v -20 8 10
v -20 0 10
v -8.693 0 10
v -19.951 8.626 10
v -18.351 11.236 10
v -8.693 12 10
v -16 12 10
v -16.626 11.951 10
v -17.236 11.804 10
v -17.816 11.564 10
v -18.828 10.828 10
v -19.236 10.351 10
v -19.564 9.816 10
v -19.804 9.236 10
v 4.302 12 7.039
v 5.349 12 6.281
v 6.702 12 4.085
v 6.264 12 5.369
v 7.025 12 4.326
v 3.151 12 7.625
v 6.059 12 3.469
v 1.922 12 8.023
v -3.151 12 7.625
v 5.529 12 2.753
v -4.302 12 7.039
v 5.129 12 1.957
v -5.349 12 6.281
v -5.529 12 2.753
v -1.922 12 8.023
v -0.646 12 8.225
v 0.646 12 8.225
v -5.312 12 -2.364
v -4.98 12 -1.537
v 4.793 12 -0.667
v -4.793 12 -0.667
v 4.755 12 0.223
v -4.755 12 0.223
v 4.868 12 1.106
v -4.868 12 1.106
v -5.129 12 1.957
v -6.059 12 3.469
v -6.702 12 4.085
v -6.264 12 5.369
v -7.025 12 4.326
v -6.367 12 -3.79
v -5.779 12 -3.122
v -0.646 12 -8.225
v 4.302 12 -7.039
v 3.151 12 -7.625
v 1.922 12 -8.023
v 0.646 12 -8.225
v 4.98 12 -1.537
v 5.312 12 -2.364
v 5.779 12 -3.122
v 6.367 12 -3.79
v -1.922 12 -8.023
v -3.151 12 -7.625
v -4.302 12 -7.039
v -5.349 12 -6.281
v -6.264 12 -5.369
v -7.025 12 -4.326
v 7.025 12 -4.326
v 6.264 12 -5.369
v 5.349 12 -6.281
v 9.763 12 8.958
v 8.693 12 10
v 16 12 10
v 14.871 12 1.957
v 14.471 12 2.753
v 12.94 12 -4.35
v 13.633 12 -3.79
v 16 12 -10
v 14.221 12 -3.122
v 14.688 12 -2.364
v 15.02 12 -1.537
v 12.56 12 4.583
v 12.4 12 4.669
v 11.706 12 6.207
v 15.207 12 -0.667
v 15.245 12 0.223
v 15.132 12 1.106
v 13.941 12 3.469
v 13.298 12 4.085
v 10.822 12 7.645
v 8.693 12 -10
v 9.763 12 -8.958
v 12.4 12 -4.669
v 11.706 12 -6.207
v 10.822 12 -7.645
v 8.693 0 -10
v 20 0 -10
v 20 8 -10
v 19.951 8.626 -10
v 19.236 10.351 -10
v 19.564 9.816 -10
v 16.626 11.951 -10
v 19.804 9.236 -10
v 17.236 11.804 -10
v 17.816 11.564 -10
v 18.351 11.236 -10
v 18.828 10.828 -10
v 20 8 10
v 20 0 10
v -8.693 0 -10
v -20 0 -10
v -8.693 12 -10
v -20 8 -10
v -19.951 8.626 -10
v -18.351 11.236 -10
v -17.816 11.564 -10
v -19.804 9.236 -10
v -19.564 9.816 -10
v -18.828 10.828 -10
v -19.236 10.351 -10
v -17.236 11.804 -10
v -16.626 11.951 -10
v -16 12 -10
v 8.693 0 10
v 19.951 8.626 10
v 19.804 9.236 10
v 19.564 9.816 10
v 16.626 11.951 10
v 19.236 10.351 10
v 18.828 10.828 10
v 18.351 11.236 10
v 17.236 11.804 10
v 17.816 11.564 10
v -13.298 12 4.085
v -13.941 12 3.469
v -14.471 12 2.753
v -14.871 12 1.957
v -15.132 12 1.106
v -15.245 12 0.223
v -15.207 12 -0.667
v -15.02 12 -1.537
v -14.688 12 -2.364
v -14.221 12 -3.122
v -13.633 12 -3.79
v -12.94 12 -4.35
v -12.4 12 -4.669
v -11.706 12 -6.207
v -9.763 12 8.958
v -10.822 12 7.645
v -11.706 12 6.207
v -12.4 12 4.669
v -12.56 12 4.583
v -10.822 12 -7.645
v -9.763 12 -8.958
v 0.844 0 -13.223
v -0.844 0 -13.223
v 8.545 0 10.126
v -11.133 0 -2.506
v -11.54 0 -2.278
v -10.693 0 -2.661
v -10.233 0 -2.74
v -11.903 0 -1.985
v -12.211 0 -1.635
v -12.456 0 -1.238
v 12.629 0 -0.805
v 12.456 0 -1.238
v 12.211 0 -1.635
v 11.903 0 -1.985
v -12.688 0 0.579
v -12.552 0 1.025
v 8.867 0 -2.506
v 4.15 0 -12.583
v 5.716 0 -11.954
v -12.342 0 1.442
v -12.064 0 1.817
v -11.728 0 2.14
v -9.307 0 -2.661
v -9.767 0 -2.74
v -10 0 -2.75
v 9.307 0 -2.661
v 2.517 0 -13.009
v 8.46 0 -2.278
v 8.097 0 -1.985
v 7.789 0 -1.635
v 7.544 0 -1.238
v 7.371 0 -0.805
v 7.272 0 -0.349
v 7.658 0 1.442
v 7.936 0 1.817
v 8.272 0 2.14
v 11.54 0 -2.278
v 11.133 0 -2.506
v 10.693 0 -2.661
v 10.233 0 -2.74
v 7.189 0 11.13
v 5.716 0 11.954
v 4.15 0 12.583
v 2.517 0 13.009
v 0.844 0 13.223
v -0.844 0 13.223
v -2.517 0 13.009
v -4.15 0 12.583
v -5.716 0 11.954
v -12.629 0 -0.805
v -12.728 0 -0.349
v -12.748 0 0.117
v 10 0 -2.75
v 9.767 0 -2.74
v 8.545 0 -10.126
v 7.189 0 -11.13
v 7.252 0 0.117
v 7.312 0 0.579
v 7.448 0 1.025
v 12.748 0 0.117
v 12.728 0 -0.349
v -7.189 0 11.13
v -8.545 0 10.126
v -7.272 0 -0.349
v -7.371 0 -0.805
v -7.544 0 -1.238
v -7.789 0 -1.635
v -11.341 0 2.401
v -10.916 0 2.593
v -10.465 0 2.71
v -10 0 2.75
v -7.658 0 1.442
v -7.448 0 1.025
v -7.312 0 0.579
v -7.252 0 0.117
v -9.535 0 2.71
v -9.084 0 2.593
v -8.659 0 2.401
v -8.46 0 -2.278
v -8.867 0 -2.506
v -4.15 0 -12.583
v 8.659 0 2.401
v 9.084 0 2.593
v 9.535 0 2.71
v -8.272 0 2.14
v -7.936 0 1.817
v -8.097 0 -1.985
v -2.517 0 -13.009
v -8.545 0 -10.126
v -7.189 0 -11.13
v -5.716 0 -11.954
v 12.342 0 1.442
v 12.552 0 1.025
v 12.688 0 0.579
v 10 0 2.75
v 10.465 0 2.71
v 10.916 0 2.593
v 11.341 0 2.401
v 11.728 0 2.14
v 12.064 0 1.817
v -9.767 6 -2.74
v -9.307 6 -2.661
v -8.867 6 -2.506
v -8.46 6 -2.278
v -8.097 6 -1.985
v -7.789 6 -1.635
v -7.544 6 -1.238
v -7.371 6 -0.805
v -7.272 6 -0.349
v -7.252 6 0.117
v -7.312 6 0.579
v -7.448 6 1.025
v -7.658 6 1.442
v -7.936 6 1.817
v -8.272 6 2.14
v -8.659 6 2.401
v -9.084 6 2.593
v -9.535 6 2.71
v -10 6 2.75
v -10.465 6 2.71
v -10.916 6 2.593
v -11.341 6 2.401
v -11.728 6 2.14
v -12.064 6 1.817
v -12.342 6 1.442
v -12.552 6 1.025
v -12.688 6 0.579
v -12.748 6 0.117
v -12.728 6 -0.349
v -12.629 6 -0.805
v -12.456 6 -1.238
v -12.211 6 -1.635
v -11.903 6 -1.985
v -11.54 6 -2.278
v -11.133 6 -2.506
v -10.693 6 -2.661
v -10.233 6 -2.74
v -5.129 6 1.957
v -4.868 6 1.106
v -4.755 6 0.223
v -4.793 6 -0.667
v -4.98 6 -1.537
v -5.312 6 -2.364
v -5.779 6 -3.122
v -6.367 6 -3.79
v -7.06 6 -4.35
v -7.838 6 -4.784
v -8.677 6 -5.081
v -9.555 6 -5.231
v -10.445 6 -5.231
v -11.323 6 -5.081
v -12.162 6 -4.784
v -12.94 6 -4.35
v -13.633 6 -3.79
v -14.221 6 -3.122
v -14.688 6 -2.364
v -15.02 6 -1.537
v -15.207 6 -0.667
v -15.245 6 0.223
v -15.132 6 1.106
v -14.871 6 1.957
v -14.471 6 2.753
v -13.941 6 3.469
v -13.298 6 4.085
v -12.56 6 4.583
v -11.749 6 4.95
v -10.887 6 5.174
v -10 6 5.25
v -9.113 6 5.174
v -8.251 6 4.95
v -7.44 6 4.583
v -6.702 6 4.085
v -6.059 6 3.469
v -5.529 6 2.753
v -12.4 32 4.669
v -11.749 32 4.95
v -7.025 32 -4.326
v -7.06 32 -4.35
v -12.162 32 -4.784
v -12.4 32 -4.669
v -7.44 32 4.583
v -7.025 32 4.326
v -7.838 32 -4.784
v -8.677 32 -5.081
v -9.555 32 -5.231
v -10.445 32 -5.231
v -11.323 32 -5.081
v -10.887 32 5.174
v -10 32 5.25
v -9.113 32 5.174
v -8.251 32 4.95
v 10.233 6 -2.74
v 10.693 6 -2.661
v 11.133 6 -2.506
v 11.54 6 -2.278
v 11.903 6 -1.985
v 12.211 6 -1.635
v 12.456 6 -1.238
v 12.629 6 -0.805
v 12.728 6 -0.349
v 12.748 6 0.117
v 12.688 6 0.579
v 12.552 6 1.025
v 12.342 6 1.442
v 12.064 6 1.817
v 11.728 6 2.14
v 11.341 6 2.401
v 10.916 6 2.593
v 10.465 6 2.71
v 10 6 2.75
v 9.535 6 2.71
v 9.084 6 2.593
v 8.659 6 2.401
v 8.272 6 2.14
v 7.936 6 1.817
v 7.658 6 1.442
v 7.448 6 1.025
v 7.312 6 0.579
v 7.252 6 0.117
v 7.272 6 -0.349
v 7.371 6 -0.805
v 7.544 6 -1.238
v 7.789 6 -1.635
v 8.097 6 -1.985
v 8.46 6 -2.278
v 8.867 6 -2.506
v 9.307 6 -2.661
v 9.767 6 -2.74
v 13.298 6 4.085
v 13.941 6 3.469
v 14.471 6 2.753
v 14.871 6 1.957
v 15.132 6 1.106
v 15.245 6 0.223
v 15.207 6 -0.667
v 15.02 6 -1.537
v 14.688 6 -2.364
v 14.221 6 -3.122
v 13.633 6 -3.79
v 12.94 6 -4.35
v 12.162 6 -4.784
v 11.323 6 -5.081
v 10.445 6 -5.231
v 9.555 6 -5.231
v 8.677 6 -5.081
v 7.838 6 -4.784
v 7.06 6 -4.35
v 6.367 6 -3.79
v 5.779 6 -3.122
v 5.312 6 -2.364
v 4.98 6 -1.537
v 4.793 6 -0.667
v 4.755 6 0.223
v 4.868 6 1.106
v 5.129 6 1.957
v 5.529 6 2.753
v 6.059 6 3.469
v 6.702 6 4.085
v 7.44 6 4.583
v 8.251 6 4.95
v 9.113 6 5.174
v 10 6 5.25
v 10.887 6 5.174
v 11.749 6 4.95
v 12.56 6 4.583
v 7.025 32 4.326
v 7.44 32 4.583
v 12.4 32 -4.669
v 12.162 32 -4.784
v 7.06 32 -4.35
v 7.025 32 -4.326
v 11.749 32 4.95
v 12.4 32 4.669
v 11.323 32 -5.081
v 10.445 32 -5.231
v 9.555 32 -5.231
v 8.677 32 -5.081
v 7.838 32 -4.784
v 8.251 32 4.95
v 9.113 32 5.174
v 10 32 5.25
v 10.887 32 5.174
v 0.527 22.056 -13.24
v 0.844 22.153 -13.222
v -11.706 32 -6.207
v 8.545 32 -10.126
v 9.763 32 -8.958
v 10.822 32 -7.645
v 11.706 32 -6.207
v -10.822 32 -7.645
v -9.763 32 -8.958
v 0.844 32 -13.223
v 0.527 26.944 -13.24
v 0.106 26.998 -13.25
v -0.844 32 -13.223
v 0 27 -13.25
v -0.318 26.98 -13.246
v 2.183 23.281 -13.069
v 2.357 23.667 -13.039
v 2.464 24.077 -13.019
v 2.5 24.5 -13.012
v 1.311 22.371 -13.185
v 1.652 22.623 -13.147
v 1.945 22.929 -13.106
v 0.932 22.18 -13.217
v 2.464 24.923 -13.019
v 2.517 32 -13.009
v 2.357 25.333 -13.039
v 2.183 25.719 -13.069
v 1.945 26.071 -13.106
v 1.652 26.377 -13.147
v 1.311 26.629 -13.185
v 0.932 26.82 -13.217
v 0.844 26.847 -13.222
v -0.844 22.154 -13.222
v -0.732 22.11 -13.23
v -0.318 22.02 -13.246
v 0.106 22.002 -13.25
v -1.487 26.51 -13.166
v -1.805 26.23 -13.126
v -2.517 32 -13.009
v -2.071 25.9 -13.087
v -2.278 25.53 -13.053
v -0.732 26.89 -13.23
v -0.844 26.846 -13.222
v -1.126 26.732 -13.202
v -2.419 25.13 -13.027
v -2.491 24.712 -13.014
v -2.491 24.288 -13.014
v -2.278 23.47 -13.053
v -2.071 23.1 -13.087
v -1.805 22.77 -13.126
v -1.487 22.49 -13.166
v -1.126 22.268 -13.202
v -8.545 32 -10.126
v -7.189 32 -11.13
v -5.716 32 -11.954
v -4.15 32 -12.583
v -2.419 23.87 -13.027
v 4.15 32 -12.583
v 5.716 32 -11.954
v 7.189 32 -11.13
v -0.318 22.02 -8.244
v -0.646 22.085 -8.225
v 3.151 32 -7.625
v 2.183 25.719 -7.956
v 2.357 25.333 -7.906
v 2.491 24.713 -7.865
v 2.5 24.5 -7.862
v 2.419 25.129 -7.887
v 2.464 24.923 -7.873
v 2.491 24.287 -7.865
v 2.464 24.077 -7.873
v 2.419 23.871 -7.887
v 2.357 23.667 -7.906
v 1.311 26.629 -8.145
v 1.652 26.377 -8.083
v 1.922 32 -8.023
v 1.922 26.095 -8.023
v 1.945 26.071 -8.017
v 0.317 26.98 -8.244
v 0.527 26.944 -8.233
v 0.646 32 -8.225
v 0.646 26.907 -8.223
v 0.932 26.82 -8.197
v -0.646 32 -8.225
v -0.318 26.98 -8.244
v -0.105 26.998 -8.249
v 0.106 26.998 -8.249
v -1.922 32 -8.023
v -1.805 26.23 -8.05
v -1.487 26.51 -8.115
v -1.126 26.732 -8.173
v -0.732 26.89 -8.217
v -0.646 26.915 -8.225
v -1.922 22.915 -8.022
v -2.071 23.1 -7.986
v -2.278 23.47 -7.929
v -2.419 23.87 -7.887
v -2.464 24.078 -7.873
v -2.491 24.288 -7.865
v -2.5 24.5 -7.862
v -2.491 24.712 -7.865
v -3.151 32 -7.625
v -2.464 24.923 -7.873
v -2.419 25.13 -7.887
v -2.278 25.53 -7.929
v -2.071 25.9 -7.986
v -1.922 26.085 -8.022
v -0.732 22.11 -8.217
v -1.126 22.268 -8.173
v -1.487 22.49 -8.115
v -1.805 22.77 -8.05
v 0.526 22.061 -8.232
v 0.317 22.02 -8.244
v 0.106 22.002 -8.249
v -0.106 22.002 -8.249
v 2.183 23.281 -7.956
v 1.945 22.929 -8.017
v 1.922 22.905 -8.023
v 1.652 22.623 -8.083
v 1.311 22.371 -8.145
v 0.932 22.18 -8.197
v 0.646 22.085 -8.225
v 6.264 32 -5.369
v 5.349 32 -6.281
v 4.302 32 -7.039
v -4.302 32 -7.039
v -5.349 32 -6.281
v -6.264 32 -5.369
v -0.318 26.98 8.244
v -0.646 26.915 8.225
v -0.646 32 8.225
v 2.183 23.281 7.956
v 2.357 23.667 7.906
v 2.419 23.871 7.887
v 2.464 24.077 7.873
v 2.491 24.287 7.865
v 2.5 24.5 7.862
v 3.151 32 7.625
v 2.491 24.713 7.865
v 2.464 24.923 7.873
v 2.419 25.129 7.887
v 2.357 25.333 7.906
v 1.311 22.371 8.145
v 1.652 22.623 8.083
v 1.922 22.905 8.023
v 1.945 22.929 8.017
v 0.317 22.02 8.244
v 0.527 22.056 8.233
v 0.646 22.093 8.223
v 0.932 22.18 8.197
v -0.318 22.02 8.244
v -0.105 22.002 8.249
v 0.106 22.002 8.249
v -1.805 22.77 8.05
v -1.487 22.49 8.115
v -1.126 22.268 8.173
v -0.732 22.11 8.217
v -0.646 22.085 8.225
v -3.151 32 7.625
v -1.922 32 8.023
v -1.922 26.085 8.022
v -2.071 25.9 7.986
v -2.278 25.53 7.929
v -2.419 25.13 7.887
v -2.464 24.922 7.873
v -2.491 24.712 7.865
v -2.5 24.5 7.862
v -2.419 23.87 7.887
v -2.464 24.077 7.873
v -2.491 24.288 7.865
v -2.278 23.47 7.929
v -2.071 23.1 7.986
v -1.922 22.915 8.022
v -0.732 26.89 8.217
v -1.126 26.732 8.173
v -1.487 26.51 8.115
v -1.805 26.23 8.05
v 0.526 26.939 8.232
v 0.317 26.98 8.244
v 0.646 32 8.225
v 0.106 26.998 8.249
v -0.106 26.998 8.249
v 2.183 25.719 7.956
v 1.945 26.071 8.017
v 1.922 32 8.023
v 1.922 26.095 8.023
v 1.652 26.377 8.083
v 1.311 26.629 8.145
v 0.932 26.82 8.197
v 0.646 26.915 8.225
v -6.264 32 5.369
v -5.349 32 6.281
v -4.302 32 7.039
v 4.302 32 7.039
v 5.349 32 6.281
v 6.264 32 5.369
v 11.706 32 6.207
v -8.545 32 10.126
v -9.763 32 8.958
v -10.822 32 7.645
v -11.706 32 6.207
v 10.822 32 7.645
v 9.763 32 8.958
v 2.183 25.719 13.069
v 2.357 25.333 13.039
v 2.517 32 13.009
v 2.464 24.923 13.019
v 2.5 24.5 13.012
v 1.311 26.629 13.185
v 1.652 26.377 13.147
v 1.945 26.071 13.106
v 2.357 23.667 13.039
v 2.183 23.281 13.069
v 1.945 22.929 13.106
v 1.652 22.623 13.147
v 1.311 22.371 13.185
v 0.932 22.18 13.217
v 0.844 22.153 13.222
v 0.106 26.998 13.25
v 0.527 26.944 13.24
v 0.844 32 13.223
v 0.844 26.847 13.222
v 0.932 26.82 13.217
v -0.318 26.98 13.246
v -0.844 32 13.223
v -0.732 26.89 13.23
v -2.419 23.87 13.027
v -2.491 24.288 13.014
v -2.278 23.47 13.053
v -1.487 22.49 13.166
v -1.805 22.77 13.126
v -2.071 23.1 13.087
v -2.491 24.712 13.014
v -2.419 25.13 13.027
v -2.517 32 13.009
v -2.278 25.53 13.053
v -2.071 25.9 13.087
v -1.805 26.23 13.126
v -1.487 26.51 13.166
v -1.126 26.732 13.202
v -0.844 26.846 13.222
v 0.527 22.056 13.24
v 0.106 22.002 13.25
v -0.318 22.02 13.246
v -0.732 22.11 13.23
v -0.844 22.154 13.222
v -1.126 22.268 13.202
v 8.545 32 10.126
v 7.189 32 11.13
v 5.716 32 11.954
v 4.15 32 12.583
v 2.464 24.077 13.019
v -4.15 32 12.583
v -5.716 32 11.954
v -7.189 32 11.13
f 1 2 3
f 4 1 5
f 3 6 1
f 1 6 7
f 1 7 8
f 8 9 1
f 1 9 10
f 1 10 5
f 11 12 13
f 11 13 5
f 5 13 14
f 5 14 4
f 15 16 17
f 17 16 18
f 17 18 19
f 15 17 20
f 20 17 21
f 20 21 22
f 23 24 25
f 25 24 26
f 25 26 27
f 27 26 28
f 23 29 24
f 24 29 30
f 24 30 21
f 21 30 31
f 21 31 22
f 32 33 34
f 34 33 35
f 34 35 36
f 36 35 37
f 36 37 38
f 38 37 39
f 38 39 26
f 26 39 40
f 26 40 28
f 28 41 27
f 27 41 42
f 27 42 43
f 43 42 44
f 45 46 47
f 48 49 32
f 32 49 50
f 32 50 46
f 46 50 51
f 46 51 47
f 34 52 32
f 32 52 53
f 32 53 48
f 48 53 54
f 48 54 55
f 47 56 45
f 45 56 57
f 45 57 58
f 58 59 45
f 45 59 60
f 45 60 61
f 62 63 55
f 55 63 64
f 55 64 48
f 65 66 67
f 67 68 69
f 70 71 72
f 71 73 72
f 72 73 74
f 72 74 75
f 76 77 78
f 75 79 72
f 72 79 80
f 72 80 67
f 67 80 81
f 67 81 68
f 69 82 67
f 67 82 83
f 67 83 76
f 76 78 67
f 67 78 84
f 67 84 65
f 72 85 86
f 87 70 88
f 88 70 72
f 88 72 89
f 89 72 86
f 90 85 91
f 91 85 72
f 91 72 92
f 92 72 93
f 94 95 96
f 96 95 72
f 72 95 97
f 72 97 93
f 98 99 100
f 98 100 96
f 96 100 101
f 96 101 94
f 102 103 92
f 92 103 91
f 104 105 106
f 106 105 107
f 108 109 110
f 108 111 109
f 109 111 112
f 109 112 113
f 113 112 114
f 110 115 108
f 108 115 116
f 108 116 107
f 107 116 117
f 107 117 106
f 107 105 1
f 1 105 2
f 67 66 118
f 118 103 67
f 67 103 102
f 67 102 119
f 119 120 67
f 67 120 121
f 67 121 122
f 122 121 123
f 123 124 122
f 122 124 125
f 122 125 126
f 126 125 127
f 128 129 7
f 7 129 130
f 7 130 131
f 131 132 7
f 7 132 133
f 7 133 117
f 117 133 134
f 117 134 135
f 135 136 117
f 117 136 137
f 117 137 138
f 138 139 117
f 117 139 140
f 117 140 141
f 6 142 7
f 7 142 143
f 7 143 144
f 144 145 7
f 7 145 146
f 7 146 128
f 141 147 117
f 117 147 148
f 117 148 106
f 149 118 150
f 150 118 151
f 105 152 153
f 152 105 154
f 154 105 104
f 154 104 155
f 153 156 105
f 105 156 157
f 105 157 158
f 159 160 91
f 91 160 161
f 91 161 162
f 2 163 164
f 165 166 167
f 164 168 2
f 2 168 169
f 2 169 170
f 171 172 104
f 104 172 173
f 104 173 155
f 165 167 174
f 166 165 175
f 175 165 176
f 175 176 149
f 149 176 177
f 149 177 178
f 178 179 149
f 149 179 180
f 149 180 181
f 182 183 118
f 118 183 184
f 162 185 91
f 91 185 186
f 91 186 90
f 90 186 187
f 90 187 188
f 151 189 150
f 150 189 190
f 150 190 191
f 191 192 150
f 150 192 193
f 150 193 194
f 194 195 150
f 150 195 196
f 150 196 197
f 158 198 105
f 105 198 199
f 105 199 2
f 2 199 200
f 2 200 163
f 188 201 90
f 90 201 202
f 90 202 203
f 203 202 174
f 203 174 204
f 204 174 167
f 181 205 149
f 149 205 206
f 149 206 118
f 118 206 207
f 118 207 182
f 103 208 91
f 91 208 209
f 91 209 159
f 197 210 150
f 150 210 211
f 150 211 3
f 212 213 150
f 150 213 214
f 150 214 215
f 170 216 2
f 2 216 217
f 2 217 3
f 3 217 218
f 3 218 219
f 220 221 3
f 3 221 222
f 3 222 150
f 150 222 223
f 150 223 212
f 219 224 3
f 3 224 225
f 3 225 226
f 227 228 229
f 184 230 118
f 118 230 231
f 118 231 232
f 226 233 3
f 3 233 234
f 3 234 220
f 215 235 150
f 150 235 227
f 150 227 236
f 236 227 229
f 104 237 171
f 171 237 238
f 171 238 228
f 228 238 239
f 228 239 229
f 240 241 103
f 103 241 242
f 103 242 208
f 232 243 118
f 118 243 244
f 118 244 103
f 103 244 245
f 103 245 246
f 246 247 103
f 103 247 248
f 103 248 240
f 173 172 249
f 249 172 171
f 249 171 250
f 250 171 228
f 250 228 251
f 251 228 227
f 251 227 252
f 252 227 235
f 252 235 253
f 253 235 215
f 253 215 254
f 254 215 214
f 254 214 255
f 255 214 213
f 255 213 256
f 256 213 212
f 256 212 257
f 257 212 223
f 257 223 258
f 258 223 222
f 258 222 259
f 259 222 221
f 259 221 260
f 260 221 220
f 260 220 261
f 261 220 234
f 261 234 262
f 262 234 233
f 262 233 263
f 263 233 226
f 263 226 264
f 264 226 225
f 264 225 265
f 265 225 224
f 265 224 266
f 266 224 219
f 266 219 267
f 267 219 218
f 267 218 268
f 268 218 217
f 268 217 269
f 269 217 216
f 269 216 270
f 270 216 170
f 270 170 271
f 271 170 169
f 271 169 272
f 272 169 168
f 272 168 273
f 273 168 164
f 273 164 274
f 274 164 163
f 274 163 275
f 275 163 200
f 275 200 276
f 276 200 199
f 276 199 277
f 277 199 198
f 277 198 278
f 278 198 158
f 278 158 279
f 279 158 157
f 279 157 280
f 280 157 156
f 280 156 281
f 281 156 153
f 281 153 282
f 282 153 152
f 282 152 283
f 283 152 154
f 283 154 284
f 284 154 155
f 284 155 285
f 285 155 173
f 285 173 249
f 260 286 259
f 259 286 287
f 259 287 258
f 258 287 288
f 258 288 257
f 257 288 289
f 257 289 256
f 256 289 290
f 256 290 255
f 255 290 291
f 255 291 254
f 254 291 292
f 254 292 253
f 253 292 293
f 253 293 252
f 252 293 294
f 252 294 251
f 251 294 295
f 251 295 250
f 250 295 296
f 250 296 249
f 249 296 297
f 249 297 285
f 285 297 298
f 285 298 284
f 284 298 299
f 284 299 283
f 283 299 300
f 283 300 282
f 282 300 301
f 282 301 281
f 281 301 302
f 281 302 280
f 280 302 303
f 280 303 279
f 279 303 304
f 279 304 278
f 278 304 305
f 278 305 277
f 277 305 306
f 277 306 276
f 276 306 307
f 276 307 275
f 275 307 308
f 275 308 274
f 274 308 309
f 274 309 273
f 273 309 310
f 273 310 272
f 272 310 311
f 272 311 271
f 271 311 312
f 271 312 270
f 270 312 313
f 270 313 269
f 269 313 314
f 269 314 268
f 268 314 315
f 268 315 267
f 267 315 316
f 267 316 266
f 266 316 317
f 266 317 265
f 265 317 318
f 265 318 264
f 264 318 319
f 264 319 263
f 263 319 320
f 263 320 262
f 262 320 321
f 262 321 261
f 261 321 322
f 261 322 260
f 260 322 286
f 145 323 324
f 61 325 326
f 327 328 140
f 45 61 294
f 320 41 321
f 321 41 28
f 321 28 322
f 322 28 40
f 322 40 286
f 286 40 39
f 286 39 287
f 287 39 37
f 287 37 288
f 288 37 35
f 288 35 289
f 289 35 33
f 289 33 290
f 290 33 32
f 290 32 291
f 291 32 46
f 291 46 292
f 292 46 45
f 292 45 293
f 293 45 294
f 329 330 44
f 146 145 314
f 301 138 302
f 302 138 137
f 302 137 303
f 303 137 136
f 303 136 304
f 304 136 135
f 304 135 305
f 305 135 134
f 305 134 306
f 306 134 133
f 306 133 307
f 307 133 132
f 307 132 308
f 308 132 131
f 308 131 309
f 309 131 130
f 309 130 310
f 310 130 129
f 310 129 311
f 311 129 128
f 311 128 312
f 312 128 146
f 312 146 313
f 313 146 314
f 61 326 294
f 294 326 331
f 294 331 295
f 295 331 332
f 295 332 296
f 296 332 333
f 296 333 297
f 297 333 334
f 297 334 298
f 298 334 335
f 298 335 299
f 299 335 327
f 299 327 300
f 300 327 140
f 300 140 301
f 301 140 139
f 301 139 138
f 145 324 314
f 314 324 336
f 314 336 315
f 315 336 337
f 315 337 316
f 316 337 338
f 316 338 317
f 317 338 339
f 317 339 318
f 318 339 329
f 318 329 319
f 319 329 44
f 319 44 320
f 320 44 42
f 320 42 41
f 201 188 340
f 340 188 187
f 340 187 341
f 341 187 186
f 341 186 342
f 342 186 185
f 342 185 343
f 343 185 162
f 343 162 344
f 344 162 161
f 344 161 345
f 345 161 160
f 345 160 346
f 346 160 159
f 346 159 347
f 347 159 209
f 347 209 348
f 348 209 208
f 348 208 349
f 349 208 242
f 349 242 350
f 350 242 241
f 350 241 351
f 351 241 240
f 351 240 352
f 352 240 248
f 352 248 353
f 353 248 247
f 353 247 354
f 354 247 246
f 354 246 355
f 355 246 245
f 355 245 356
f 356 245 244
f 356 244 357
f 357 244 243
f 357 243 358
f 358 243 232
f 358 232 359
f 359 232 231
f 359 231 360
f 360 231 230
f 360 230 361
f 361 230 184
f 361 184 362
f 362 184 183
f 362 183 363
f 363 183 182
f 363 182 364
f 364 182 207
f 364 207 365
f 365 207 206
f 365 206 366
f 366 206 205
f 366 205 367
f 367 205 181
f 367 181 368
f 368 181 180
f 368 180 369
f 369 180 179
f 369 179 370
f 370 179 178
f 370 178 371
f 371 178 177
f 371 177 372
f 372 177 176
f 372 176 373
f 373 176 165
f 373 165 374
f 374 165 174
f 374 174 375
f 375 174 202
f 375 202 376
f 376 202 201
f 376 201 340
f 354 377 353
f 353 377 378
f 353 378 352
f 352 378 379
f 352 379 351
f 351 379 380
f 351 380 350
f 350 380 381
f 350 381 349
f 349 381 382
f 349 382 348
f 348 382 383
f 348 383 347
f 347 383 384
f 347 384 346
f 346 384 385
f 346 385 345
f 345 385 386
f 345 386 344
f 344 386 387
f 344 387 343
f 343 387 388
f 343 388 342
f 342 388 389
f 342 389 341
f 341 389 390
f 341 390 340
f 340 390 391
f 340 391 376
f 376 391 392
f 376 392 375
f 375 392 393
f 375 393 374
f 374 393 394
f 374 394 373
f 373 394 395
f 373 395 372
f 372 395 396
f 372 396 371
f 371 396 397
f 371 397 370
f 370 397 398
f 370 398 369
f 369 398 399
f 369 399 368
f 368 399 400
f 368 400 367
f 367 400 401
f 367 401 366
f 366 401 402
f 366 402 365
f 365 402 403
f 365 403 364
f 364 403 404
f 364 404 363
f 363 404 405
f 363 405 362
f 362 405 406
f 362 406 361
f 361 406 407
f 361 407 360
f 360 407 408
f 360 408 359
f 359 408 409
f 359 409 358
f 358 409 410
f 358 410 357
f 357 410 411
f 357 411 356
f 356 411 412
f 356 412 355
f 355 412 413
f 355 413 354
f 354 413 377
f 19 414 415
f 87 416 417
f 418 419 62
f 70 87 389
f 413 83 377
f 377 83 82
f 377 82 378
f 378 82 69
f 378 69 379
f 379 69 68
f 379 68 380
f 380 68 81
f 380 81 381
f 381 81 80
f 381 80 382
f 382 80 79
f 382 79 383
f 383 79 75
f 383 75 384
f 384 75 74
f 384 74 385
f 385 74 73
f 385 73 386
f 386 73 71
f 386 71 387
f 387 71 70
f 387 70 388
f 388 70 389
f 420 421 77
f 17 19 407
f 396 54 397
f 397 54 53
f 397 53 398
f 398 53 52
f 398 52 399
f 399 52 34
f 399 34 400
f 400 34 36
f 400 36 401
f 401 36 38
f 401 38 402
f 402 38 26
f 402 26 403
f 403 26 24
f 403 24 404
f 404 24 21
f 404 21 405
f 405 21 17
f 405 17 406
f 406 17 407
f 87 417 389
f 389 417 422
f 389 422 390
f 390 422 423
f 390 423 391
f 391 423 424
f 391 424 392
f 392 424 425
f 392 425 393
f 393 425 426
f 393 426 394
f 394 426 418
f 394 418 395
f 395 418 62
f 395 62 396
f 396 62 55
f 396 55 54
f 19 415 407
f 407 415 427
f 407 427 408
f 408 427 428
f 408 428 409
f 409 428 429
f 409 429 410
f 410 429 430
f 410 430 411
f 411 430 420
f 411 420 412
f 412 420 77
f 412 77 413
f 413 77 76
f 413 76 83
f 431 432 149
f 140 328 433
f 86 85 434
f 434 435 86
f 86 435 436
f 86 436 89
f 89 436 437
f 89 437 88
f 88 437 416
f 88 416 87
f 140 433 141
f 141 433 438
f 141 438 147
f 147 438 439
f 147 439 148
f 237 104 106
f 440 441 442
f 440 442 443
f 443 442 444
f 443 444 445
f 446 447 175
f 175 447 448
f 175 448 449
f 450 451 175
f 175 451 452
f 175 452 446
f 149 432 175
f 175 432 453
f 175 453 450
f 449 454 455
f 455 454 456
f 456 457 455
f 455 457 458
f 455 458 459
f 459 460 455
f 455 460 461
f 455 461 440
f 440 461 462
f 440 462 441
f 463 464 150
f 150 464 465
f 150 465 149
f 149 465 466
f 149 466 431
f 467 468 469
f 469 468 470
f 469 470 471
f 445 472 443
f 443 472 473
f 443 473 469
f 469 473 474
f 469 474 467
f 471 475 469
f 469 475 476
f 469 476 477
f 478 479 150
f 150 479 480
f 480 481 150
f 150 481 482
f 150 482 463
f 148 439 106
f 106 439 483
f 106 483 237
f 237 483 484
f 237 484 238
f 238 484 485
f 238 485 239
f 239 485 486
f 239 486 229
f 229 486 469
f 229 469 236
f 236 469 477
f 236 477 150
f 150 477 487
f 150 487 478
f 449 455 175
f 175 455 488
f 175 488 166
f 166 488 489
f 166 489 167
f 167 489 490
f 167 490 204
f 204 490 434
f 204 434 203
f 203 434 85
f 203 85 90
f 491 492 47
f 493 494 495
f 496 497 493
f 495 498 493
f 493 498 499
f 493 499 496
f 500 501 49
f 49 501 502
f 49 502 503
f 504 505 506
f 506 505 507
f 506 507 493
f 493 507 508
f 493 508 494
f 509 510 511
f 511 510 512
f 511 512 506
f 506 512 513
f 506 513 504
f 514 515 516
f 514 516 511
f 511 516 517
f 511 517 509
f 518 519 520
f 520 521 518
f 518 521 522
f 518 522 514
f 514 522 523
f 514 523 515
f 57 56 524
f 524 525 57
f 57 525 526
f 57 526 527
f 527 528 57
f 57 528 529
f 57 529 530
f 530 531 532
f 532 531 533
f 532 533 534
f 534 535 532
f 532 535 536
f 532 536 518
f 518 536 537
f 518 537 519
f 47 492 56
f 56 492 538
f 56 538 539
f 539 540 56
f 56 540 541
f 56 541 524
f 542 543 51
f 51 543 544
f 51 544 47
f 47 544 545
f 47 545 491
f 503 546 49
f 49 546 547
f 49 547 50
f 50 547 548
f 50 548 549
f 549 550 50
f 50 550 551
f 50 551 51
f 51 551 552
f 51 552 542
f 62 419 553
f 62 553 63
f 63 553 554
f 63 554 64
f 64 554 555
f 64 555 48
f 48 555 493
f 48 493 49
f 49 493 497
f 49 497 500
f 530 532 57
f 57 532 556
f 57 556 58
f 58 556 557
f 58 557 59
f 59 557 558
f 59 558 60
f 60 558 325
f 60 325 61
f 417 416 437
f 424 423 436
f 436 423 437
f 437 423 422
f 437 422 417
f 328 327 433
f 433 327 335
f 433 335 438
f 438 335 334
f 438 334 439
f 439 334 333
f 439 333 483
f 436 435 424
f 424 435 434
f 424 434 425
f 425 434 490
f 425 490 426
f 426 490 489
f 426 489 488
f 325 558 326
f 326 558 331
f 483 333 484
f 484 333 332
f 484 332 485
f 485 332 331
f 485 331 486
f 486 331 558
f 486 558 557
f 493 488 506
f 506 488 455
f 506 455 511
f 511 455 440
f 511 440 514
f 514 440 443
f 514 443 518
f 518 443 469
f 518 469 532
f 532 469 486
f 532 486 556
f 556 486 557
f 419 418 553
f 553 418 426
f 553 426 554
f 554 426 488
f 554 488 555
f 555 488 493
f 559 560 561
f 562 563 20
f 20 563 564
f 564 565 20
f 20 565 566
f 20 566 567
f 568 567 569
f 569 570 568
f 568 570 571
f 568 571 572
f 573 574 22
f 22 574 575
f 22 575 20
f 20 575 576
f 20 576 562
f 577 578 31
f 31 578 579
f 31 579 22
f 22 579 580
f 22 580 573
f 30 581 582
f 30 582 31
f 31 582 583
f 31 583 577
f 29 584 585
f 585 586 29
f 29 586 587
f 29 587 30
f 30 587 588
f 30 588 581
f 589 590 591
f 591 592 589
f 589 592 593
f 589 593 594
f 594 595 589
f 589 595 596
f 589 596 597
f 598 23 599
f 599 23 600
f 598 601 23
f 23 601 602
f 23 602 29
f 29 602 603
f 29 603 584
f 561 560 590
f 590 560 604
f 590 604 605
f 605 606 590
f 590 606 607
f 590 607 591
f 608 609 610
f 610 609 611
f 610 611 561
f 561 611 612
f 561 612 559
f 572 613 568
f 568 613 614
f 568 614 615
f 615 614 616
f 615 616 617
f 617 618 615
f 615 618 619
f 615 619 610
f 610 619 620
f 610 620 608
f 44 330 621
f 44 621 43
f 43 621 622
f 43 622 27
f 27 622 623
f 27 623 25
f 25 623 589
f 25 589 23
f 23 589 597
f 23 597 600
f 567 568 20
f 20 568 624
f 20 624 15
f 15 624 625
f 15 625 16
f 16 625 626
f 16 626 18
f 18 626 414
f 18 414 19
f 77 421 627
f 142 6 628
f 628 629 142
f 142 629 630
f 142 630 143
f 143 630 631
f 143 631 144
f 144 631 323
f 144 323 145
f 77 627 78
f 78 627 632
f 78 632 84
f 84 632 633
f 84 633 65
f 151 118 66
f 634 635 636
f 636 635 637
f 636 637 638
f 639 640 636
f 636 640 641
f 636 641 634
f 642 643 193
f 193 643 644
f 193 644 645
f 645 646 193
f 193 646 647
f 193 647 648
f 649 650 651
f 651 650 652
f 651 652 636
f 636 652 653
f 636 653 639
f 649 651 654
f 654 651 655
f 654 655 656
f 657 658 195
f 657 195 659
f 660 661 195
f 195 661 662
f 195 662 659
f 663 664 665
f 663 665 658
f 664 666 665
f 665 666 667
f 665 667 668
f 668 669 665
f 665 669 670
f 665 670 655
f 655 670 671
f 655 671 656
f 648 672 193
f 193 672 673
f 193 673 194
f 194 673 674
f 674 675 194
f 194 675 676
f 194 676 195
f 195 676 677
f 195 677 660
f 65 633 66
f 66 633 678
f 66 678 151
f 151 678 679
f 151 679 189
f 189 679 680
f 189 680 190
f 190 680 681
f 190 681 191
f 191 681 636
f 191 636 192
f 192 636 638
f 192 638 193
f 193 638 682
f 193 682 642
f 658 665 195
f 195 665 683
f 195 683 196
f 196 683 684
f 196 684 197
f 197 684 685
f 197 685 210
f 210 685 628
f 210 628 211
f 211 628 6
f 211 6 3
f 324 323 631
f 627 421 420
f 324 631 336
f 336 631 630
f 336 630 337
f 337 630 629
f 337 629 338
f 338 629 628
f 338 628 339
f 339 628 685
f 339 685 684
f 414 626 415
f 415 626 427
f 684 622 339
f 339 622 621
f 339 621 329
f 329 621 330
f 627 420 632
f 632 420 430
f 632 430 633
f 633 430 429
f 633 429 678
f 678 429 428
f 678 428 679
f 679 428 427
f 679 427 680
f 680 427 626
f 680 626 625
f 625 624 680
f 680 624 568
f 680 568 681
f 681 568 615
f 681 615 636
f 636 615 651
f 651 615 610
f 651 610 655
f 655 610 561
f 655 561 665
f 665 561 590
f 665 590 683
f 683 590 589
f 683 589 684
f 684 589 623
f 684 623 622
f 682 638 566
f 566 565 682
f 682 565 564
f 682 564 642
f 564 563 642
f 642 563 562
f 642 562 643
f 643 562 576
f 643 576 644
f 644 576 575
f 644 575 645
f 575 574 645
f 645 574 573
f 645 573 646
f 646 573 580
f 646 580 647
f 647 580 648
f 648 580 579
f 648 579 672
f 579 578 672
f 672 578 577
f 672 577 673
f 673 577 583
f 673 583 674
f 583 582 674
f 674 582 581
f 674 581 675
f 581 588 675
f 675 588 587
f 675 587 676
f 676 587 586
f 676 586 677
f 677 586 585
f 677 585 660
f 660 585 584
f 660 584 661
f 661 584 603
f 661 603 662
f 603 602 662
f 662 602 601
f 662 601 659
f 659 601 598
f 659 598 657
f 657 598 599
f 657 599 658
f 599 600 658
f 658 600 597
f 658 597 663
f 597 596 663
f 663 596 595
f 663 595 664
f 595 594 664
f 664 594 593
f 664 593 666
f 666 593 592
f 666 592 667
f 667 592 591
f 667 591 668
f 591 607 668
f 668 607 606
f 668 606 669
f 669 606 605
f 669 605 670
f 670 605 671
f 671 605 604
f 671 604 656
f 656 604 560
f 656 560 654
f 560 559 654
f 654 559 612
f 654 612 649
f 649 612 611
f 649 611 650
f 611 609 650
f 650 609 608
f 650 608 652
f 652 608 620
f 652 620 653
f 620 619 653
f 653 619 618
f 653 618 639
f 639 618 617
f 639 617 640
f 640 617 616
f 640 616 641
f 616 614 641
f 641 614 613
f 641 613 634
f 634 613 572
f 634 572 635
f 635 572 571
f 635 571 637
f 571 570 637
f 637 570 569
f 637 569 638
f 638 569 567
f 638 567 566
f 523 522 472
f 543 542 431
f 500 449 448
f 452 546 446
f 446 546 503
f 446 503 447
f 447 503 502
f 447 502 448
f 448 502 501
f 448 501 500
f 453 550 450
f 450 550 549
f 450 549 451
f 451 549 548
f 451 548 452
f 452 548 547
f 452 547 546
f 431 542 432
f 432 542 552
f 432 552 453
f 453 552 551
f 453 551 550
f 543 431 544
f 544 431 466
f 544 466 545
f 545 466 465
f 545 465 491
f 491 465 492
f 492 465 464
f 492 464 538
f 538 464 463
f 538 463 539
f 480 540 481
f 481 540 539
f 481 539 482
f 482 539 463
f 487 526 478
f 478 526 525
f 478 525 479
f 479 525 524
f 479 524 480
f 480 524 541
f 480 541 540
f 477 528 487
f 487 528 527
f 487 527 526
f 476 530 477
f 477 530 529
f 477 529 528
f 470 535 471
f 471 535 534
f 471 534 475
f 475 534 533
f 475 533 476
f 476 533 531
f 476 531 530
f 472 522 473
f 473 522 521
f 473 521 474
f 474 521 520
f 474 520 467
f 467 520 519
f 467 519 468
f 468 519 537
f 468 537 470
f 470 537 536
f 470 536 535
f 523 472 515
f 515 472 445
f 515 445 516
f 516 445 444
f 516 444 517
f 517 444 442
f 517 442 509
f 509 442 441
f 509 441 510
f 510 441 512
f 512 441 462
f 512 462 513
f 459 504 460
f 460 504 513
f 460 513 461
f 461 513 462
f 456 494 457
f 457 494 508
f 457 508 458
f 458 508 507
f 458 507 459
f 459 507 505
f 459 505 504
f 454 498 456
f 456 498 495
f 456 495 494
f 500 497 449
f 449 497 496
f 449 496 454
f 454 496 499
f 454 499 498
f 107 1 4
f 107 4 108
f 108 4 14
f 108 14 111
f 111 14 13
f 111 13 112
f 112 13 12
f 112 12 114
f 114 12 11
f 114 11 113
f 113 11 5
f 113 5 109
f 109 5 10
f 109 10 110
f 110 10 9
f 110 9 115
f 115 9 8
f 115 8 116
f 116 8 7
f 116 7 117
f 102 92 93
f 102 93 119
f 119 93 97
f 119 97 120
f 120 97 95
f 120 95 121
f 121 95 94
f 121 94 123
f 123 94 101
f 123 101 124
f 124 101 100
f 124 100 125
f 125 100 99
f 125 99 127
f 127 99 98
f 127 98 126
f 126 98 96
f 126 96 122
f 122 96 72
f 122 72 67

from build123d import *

# Parameters (mm, degrees)
SKETCH1_W                      = 40
SKETCH1_H                      = 20
BOSS_EXTRUDE1_DEPTH            = 12
CBORE_FOR_M5_SHCS1_D           = 5.5
CBORE_FOR_M5_SHCS1_DEPTH       = 12
CBORE_FOR_M5_SHCS1_CBORE_D     = 10.5
CBORE_FOR_M5_SHCS1_CBORE_DEPTH = 6
BOSS_EXTRUDE2_DEPTH            = 20
BOSS_EXTRUDE2_DEPTH_BACK       = 12
SKETCH6_R                      = 2.5
CUT_EXTRUDE1_DEPTH             = 14.25
CUT_EXTRUDE1_DEPTH_BACK        = 14.25
FILLET1_R                      = 4


with BuildPart() as part:
    # Sketch1 → Boss-Extrude1 (new body)
    with BuildSketch(Plane(origin=(0, 0, 0), x_dir=(1, 0, 0), z_dir=(0, 1, 0))):
        Rectangle(SKETCH1_W, SKETCH1_H)
    extrude(amount=BOSS_EXTRUDE1_DEPTH)

    # CBORE for M5 SHCS1
    with Locations(Plane(origin=(0, 12, 0), x_dir=(1, 0, 0), z_dir=(0, 1, 0))):
        with Locations((10, 0), (-10, 0)):
            CounterBoreHole(CBORE_FOR_M5_SHCS1_D / 2, CBORE_FOR_M5_SHCS1_CBORE_D / 2, CBORE_FOR_M5_SHCS1_CBORE_DEPTH, depth=CBORE_FOR_M5_SHCS1_DEPTH)

    # Sketch4 → Boss-Extrude2 (add, two sides)
    with BuildSketch(Plane(origin=(0, 12, 0), x_dir=(1, 0, 0), z_dir=(0, 1, 0))) as boss_extrude2_sk:
        with BuildLine():
            ThreePointArc((-12.4, -4.669314725), (0, -13.25), (12.4, -4.669314725))
            ThreePointArc((12.4, -4.669314725), (9.665081865, -5.239306237), (7.025, -4.325722483))
            ThreePointArc((7.025, -4.325722483), (0, -8.25), (-7.025, -4.325722483))
            ThreePointArc((-7.025, -4.325722483), (-9.665081865, -5.239306237), (-12.4, -4.669314725))
        make_face()
        with BuildLine():
            ThreePointArc((-7.025, 4.325722483), (-9.665081865, 5.239306237), (-12.4, 4.669314725))
            ThreePointArc((-12.4, 4.669314725), (0, 13.25), (12.4, 4.669314725))
            ThreePointArc((12.4, 4.669314725), (9.665081865, 5.239306237), (7.025, 4.325722483))
            ThreePointArc((7.025, 4.325722483), (0, 8.25), (-7.025, 4.325722483))
        make_face()
    extrude(amount=BOSS_EXTRUDE2_DEPTH)
    extrude(boss_extrude2_sk.sketch, amount=-BOSS_EXTRUDE2_DEPTH_BACK)

    # Sketch6 → Cut-Extrude1 (cut, two sides)
    with BuildSketch(Plane.XY) as cut_extrude1_sk:
        with Locations((0, 24.5)):
            Circle(SKETCH6_R)
    extrude(amount=CUT_EXTRUDE1_DEPTH, mode=Mode.SUBTRACT)
    extrude(cut_extrude1_sk.sketch, amount=-CUT_EXTRUDE1_DEPTH_BACK, mode=Mode.SUBTRACT)

    # Fillet1
    fillet1_edges = [part.edges().sort_by_distance(p)[0] for p in [
        (-20, 12, 0),
        (20, 12, 0),
    ]]
    fillet(fillet1_edges, radius=FILLET1_R)


solid = part.part
